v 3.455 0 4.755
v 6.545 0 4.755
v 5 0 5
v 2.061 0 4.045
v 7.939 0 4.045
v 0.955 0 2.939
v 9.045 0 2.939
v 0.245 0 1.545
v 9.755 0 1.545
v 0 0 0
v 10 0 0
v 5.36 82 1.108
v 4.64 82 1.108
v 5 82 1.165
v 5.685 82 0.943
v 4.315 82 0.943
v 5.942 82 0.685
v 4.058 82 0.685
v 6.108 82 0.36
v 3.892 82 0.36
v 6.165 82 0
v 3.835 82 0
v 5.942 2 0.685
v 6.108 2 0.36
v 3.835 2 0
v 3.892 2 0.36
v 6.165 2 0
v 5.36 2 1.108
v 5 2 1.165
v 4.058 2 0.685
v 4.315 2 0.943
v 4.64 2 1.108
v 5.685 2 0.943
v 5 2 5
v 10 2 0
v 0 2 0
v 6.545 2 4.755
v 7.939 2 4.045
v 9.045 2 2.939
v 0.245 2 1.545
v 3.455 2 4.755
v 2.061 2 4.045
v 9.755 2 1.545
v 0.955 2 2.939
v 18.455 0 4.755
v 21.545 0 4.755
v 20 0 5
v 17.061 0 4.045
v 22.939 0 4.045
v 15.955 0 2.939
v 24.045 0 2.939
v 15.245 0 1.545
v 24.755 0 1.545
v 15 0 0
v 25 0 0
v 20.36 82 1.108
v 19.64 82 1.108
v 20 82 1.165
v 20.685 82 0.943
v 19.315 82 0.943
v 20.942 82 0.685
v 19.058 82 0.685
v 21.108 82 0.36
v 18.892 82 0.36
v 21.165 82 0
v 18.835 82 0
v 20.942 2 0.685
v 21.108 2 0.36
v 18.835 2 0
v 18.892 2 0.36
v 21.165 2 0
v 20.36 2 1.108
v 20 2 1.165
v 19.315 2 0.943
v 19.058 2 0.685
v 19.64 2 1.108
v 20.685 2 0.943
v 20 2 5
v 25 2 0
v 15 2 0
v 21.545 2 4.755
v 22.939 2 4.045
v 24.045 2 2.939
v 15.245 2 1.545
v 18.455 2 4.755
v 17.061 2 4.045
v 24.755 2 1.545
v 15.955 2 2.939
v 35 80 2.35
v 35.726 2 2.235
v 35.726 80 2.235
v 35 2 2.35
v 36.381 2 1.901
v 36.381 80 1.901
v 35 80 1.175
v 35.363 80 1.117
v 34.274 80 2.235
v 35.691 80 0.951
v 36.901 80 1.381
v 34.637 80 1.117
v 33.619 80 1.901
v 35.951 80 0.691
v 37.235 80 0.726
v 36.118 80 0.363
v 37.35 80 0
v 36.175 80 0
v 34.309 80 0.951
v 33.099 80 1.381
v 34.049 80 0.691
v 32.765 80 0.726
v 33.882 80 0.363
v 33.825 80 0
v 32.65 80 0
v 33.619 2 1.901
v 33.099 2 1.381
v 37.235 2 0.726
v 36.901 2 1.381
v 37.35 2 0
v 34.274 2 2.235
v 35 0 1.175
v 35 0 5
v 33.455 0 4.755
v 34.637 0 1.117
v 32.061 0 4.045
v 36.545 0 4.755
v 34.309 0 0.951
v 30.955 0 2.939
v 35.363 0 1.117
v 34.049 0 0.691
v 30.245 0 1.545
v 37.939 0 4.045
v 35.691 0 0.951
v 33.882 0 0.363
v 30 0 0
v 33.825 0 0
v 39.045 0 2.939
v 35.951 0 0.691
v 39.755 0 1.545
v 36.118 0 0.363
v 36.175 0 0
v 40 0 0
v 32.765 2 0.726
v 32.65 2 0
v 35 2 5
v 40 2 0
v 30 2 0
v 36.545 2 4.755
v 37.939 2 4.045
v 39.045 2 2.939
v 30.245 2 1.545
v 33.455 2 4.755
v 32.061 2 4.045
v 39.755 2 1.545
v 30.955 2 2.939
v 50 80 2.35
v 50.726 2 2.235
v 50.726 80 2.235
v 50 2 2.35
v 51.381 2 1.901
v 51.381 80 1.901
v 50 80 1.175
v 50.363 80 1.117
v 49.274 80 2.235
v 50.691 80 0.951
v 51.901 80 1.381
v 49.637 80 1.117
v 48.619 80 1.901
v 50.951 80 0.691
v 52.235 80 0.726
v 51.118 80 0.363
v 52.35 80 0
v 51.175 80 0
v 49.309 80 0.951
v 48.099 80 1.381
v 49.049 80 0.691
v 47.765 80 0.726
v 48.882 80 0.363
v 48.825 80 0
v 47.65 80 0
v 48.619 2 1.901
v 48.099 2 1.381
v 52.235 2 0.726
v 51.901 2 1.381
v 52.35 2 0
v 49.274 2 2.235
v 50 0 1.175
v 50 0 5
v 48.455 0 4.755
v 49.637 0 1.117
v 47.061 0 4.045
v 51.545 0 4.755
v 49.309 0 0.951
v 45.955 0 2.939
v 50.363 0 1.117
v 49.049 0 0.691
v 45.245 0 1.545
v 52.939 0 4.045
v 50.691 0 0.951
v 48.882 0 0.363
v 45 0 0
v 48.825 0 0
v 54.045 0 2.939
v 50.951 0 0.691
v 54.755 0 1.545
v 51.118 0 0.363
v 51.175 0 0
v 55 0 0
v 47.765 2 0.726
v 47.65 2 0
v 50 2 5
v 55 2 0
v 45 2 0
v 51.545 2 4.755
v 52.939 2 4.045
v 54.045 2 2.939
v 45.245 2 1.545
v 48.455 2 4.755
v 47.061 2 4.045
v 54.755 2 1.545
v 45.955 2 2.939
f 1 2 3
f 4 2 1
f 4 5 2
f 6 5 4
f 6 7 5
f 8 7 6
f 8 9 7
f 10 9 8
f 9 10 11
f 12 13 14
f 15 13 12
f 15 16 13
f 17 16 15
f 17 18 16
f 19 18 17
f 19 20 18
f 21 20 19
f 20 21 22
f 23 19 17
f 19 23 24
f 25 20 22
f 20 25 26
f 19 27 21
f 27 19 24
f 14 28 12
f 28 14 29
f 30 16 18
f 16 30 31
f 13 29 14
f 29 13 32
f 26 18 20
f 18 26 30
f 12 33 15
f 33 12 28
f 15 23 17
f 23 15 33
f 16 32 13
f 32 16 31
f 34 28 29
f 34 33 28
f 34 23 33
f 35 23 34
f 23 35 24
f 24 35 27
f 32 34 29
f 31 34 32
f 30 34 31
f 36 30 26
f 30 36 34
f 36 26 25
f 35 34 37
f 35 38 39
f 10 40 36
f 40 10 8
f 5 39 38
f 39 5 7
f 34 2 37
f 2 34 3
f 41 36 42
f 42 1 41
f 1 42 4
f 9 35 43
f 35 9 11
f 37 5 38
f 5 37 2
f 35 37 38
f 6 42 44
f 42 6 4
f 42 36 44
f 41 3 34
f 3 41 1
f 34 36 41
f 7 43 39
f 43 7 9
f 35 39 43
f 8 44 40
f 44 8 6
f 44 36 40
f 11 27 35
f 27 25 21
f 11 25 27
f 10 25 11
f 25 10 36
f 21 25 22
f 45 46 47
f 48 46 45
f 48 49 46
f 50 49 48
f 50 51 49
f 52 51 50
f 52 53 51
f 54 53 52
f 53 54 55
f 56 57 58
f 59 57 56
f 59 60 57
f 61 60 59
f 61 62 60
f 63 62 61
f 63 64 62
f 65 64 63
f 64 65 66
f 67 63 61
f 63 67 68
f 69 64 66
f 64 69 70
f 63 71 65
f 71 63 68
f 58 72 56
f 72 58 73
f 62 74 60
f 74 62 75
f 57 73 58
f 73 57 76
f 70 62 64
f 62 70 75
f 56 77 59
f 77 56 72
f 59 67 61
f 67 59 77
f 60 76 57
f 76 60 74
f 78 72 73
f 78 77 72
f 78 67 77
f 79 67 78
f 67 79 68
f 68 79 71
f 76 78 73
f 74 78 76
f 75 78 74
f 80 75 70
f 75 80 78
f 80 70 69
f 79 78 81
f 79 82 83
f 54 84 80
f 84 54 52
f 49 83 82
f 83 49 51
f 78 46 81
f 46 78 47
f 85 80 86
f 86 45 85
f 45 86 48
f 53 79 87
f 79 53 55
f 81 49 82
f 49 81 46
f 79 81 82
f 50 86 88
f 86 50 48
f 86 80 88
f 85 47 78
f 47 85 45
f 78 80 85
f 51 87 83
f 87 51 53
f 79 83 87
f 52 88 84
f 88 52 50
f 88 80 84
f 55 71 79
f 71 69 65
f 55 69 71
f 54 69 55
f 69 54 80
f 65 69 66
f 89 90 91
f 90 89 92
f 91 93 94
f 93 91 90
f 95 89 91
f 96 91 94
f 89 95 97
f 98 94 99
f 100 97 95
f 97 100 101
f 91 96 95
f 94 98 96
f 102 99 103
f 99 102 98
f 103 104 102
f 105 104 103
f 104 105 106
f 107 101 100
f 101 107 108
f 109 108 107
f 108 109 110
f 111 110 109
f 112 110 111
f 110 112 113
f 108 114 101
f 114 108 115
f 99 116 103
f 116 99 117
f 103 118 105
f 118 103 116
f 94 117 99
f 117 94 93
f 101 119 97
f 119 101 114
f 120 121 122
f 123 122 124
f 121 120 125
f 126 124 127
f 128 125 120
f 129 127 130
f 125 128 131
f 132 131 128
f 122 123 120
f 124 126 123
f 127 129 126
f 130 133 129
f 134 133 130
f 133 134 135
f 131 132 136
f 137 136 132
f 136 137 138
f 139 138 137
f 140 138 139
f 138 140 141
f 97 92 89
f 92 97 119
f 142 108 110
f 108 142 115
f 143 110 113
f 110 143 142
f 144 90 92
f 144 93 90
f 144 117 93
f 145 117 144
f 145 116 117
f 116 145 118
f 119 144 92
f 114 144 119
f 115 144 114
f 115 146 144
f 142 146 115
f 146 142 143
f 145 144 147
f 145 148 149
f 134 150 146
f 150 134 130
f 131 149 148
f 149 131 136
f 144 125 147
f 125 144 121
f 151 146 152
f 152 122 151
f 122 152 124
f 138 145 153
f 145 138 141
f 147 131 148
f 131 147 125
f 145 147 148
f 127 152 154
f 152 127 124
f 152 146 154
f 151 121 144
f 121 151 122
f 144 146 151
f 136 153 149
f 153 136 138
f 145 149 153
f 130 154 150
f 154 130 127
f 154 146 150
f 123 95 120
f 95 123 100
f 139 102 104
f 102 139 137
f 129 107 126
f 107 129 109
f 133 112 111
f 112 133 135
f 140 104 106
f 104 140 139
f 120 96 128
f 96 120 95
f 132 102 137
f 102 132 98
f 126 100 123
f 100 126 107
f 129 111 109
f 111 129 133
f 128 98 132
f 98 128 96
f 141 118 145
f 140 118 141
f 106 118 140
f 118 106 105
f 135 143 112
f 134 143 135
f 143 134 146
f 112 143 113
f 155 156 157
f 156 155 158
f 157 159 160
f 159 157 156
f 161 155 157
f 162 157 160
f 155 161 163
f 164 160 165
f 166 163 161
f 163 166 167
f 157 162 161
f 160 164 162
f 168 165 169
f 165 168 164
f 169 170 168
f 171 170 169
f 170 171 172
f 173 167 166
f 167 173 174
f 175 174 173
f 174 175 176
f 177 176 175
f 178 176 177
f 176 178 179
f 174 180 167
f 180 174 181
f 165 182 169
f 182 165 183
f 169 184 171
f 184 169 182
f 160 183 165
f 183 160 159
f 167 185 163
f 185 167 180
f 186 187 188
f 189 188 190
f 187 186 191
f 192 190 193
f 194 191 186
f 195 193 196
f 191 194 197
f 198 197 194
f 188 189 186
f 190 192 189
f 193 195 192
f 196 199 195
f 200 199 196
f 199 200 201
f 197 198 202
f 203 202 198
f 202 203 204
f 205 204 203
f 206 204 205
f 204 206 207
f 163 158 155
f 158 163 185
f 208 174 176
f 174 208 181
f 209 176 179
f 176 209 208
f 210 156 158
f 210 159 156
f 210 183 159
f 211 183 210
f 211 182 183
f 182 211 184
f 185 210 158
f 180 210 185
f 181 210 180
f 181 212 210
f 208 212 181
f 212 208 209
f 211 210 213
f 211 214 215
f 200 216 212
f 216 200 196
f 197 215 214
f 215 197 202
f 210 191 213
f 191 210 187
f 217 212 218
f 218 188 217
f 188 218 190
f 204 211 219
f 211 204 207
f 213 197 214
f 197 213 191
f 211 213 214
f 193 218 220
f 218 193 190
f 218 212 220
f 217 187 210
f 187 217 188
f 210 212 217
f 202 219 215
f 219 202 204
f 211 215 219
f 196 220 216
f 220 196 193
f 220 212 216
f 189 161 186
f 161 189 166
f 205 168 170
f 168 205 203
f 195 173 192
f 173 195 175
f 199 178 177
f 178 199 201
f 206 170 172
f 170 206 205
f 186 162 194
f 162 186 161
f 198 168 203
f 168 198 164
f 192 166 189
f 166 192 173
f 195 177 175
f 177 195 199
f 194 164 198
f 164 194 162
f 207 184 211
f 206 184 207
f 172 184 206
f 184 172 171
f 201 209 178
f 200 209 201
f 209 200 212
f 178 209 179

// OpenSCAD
$fn=20;
HeadHeight=2; // [1,1.5,2,2.5,3]
HeadDiameter=10; //[7:15]
SleeveLength=78; //[1:100]
SleeveOutterDiameter=4.7;//[5.00,5.08,6,7,8,9,10]
Play=0.01;// [0.0,0.1,0.2,0.3,0.4,0.5]

HeadRadius=HeadDiameter/2;
SleeveOutterRadius=SleeveOutterDiameter/2;
SleeveInnerRadius=(SleeveOutterRadius/2)-Play;

O1=HeadDiameter/2;
O2=HeadDiameter+10;
O3=(HeadDiameter*2)+15;
O4=(HeadDiameter*3)+20;

translate([O1,0,0]) core();
translate([O2,0,0]) core();
translate([O3,0,0]) outter();
translate([O4,0,0]) outter();

module core() {
	difference() {
		union() {
			rotate([-90,0,0]) cylinder(r=SleeveInnerRadius,h=SleeveLength+(HeadHeight*2));
			rotate([-90,0,0]) cylinder(r=HeadRadius,h=HeadHeight);
		}
		translate([-HeadRadius,0,-HeadRadius]) cube([HeadDiameter+1,SleeveLength+(HeadHeight*2)+1,HeadRadius]);
	}
}

module outter() {
	difference() {
		union() {
			rotate([-90,0,0]) cylinder(r=SleeveOutterRadius,h=SleeveLength+HeadHeight);
			rotate([-90,0,0]) cylinder(r=HeadRadius,h=HeadHeight);
		}
		rotate([-90,0,0]) cylinder(r=SleeveInnerRadius+Play,h=SleeveLength+HeadHeight);
		translate([-HeadRadius,0,-HeadRadius]) cube([HeadDiameter+1,SleeveLength+HeadHeight+1,HeadRadius]);
	}
}
